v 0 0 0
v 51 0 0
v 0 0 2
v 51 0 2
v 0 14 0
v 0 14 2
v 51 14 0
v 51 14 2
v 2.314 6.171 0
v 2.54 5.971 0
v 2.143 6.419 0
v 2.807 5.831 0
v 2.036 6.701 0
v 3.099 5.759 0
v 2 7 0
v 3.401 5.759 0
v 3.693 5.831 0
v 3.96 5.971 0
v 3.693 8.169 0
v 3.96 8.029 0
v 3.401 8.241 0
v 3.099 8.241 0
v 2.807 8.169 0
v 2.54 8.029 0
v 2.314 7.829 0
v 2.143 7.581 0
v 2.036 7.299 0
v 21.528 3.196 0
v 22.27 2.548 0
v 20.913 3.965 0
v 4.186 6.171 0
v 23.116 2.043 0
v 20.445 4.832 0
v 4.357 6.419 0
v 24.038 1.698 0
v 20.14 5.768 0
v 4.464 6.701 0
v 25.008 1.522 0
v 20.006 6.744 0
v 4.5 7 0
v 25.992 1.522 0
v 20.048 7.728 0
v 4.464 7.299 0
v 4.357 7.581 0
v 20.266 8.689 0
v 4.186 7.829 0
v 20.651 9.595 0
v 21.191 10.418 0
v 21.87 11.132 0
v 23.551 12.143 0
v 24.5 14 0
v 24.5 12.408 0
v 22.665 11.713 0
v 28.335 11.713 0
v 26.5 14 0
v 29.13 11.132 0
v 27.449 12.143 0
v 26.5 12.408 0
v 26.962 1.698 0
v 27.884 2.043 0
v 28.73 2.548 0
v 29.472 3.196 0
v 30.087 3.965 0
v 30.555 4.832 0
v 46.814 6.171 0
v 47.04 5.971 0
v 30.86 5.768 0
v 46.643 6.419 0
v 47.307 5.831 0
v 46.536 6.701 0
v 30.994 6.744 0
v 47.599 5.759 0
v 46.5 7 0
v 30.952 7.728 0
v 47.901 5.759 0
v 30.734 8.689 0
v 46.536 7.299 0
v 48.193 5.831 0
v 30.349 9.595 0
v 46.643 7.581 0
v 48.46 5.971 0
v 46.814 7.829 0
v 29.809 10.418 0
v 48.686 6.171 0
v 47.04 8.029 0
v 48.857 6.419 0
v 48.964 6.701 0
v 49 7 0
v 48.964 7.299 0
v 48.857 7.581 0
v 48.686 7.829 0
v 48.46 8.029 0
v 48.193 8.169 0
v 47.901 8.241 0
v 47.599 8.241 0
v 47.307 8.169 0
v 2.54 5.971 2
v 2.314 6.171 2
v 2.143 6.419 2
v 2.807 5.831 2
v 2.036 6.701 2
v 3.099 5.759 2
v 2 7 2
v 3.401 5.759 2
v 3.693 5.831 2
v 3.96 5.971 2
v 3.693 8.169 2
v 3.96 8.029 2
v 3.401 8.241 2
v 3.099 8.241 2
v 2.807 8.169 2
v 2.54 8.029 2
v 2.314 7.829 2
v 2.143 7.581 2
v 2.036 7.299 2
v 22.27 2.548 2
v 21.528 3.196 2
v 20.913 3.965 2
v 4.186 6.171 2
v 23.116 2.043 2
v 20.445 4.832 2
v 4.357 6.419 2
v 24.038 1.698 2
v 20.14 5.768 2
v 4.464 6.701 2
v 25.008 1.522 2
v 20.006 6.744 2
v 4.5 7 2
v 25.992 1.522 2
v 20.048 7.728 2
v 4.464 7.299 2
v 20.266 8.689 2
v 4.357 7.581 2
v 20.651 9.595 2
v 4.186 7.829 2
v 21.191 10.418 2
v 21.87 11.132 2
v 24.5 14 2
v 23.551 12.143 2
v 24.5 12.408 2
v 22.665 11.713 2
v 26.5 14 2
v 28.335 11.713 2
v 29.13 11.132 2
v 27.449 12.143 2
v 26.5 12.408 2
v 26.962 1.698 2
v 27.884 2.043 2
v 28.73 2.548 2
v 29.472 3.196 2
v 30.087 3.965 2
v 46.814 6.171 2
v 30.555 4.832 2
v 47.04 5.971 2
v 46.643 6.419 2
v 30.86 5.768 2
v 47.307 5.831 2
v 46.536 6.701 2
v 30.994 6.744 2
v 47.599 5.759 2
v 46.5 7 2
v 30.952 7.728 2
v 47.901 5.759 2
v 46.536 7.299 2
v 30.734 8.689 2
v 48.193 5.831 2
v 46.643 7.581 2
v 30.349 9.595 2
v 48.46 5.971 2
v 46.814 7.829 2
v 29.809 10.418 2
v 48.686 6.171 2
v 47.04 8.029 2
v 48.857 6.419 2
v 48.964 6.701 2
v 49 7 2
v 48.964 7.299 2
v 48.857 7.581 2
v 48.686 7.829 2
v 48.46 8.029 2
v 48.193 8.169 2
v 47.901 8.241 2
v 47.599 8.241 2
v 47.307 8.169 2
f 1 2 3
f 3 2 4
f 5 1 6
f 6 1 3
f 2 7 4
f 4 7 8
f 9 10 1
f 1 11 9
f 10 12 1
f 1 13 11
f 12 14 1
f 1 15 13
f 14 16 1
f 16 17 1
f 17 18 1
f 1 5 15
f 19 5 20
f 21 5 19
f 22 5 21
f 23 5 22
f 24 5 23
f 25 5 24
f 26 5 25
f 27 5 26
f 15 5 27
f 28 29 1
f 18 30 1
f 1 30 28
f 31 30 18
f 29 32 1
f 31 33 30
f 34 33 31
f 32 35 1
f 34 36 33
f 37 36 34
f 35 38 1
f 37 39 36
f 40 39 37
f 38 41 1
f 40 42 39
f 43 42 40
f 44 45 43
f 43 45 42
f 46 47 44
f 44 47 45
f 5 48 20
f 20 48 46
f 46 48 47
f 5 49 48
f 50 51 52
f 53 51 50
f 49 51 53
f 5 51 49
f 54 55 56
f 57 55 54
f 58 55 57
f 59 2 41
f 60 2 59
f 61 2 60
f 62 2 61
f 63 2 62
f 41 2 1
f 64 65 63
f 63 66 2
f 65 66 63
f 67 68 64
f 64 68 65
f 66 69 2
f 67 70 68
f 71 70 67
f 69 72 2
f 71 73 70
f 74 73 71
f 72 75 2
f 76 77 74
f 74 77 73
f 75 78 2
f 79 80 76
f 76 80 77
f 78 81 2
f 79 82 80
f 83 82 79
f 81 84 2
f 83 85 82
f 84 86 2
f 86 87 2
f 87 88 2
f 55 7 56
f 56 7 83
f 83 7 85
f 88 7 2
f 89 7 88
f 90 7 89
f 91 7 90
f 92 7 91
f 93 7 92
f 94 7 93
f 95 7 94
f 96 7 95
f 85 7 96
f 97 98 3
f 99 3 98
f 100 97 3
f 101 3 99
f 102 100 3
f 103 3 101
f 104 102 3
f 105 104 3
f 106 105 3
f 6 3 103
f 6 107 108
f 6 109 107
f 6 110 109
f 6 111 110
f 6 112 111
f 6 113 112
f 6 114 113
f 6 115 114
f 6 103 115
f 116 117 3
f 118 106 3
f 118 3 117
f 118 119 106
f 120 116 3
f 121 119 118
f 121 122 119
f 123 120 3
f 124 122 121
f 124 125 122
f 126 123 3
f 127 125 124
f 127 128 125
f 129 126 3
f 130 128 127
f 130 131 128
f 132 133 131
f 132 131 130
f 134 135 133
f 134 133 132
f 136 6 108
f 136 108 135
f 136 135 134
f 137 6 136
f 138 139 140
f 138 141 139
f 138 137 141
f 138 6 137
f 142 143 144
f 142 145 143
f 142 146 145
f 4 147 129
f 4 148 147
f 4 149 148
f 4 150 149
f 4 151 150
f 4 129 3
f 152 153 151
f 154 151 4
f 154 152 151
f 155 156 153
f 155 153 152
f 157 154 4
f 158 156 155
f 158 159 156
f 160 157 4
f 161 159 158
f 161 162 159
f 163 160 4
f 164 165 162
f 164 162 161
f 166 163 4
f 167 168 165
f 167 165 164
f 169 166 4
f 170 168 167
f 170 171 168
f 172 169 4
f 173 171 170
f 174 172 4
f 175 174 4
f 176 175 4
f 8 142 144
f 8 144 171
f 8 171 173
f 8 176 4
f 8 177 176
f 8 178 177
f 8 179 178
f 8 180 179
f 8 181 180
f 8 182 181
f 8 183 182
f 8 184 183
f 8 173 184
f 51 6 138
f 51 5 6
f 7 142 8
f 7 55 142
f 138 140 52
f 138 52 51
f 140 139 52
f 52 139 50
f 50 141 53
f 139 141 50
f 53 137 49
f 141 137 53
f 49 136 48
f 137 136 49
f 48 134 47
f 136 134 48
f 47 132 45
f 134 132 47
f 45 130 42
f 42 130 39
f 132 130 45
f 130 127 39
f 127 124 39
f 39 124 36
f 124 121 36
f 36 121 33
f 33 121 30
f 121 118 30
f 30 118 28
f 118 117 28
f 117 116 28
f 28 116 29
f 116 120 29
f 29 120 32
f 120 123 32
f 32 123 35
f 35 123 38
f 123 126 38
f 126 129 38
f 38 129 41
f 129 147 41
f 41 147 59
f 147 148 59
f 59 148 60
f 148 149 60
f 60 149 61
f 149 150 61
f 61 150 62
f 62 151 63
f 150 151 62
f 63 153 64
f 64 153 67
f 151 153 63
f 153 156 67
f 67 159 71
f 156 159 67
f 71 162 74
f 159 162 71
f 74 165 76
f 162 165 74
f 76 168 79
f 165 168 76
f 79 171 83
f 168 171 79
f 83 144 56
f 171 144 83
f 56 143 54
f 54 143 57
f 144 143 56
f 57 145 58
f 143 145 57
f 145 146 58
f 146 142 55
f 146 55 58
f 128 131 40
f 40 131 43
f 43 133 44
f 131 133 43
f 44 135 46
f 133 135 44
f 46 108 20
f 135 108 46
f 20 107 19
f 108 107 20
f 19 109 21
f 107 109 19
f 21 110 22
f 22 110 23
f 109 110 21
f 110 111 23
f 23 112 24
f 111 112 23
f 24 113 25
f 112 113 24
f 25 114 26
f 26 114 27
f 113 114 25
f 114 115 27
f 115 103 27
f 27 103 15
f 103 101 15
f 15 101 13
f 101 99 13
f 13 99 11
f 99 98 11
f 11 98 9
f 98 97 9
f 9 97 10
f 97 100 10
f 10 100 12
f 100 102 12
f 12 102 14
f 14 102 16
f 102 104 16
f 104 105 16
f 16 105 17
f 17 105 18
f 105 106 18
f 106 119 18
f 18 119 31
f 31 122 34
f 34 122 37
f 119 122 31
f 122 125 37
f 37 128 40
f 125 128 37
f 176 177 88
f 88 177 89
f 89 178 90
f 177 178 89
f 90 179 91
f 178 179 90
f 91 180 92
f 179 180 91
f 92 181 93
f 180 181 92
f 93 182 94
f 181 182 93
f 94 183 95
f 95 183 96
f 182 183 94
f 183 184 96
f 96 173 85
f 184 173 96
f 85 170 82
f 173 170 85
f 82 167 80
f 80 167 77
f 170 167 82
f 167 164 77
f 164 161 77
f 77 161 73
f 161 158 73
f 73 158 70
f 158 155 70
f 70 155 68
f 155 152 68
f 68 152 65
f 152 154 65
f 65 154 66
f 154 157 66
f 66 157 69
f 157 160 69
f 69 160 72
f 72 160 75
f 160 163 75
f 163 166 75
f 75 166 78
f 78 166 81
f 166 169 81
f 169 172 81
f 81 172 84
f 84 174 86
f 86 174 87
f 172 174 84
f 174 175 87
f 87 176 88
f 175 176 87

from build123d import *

# Parameters (mm, degrees)
SKETCH_W     = 51
SKETCH_H     = 14
PAD_DEPTH    = 2
SKETCH001_R  = 1.25
POCKET_DEPTH = 5


with BuildPart() as part:
    # Sketch → Pad (new body)
    with BuildSketch(Plane.XY):
        with Locations((25.5, 7)):
            Rectangle(SKETCH_W, SKETCH_H)
    extrude(amount=PAD_DEPTH)

    # Sketch001 (on Face6 of Pad) → Pocket (cut)
    with BuildSketch(Plane.XY.offset(2)):
        with Locations((3.25, 7)):
            Circle(SKETCH001_R)
        with Locations((47.75, 7)):
            Circle(SKETCH001_R)
        with BuildLine():
            Line((24.5, 12.408327), (24.5, 14))
            Line((24.5, 14), (26.5, 14))
            Line((26.5, 14), (26.5, 12.408327))
            ThreePointArc((24.5, 12.408327), (25.5, 1.5), (26.5, 12.408327))
        make_face()
    extrude(amount=-POCKET_DEPTH, mode=Mode.SUBTRACT)


solid = part.part
